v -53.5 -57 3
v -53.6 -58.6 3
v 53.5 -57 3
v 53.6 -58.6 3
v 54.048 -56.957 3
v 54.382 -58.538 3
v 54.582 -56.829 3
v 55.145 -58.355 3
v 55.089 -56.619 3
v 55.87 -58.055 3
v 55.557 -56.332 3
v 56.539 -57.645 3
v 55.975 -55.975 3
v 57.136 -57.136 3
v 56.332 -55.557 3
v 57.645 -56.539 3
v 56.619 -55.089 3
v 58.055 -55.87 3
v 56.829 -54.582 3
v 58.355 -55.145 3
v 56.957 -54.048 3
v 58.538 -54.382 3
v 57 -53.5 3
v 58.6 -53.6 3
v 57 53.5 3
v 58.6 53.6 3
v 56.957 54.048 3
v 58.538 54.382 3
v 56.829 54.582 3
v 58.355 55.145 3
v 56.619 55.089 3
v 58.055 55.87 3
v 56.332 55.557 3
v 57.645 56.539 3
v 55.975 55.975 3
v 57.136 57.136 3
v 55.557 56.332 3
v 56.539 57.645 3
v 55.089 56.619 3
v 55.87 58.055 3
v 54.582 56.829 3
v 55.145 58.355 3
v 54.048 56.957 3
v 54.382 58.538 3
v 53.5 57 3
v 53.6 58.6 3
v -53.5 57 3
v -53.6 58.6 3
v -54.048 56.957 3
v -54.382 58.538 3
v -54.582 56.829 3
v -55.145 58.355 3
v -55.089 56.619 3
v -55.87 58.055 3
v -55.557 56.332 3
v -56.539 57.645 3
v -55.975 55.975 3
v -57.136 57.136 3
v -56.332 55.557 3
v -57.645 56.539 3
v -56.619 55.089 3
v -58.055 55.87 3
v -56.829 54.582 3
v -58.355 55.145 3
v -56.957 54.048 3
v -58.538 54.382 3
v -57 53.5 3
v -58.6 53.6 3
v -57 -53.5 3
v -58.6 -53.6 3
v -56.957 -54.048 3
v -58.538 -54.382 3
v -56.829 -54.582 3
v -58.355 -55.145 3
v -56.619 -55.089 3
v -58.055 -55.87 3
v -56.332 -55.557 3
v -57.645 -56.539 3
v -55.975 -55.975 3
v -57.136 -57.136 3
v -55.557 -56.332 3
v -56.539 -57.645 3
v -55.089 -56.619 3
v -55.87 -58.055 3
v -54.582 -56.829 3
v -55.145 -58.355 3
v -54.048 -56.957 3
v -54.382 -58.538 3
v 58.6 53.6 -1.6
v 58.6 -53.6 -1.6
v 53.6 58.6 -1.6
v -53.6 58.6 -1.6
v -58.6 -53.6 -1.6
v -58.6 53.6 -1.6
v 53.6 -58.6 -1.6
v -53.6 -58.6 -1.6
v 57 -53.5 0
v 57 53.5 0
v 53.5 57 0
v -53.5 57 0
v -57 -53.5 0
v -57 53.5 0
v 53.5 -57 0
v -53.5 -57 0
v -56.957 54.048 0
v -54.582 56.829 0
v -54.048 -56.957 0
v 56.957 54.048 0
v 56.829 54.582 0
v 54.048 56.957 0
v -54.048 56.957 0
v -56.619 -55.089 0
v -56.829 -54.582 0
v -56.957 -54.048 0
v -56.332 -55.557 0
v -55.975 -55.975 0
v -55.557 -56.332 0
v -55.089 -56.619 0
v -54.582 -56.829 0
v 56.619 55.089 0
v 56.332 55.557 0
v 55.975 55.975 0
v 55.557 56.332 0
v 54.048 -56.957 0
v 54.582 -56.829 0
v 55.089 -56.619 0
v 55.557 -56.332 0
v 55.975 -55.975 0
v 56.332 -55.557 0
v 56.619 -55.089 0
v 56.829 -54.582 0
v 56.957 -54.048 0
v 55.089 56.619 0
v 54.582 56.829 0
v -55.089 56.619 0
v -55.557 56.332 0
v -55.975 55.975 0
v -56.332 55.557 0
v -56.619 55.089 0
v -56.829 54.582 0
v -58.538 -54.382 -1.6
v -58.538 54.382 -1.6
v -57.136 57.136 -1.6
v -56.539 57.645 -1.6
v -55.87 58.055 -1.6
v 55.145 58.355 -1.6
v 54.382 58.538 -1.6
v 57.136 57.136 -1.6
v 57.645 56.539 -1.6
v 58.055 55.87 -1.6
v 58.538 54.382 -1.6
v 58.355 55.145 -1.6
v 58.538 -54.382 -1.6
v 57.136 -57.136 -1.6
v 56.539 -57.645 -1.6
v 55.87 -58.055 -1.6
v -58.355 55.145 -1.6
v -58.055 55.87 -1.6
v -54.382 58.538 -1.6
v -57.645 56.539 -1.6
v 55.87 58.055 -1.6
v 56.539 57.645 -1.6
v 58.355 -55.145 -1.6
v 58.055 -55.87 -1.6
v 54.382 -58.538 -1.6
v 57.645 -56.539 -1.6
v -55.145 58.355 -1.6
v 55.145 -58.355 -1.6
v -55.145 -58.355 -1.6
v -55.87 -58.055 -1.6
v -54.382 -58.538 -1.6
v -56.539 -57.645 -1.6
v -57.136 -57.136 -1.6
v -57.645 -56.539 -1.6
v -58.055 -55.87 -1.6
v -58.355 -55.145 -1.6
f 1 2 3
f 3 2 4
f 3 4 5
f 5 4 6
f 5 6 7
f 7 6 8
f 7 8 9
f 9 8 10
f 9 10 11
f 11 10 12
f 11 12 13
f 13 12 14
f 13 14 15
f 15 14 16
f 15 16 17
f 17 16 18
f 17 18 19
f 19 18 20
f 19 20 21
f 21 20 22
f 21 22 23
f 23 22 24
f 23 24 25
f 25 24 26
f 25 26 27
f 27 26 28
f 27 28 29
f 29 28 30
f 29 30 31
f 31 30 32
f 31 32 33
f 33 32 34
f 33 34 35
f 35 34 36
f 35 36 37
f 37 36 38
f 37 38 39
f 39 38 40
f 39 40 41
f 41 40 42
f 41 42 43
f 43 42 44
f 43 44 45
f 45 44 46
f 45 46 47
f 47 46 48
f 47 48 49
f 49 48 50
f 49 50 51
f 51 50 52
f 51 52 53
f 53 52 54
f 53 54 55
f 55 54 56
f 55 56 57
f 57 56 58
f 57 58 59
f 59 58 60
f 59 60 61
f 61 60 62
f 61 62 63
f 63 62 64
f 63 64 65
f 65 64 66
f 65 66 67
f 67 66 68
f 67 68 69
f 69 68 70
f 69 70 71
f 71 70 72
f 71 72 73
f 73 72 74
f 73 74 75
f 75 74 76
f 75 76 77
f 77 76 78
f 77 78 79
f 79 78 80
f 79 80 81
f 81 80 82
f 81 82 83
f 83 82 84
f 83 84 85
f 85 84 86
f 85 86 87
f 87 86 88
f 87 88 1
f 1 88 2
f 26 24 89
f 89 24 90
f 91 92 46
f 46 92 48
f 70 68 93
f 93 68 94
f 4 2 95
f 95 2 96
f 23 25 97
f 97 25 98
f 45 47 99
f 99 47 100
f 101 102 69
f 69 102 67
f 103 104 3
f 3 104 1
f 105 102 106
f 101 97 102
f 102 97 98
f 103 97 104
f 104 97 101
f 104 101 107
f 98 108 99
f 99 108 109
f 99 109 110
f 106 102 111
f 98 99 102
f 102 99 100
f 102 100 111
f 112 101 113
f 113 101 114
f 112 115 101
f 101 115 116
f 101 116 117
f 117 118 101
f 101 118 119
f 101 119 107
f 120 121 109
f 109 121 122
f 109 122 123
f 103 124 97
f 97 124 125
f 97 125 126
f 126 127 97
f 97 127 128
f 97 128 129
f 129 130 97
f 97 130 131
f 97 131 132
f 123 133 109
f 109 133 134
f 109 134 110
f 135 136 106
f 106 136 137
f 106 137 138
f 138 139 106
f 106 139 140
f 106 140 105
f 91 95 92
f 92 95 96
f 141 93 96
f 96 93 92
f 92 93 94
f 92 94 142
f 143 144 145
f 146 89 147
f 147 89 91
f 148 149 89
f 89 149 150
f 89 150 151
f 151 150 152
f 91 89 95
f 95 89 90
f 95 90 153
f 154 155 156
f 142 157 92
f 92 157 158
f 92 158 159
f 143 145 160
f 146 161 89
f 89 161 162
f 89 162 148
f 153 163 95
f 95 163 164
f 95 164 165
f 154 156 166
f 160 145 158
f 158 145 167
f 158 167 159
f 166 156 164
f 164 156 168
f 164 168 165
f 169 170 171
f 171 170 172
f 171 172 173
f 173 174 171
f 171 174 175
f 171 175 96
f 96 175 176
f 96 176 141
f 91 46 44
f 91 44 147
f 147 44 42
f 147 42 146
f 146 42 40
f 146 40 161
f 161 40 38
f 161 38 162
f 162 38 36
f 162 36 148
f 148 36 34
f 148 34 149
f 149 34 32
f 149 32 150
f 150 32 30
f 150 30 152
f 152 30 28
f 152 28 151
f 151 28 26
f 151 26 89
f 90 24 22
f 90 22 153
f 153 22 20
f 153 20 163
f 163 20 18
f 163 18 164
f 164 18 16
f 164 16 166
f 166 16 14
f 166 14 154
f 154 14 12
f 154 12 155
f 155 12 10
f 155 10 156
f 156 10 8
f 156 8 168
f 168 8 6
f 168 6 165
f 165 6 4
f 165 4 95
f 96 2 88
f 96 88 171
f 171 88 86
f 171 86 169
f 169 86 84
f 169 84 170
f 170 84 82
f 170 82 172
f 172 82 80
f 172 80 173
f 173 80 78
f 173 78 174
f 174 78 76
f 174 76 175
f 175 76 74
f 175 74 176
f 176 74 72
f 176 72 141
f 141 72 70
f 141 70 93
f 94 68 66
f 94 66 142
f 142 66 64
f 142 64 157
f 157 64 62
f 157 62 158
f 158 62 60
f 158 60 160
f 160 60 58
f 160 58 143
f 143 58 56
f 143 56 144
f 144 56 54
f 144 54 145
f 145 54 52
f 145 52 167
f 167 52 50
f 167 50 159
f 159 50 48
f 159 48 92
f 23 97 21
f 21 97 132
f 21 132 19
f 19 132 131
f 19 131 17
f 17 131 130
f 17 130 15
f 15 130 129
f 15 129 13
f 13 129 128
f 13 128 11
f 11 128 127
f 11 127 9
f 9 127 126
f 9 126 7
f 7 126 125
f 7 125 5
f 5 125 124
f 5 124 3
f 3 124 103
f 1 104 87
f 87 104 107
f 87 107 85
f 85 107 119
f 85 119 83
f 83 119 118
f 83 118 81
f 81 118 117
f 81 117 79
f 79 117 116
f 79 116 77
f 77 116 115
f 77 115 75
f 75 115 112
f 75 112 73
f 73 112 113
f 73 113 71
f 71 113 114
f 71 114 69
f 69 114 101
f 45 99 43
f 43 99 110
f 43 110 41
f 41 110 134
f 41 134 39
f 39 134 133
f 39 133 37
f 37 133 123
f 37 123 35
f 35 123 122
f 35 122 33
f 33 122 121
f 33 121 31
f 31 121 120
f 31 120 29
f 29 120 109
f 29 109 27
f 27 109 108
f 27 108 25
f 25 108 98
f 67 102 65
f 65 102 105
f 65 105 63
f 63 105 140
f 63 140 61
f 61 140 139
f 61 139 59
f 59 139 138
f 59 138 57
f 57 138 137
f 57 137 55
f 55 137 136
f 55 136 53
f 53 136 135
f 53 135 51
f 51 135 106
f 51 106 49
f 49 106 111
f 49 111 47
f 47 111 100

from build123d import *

# Parameters (mm, degrees)
SURFACE_EXTRUDE1_1_DEPTH = 3
THICKEN1_T1              = 1.6
THICKEN2_START           = -58.6
THICKEN2_OUTLINE_W       = 117.2
THICKEN2_OUTLINE_H       = 1.6
THICKEN2_DEPTH           = 117.2
FILLET2_R                = 5
FILLET3_R                = 3.5


# Read off the part's stored shape, not the designer's step: Thicken2
with BuildPart() as body_1:
    # Surface-Extrude1: a surface, the sketch's curves swept straight by 3 mm
    with BuildLine(Plane.XY, mode=Mode.PRIVATE) as surface_extrude1_1_path:
        Line((-57, 57), (57, 57))
        Line((57, 57), (57, -57))
        Line((57, -57), (-57, -57))
        Line((-57, -57), (-57, 57))
    surface_extrude1_1 = Shell.extrude(surface_extrude1_1_path.wire(), (0 * SURFACE_EXTRUDE1_1_DEPTH, 0 * SURFACE_EXTRUDE1_1_DEPTH, 1 * SURFACE_EXTRUDE1_1_DEPTH))
    add(Solid.thicken(surface_extrude1_1, THICKEN1_T1))

    # Thicken2 outline → Thicken2 (add)
    with BuildSketch(Plane.YZ.offset(THICKEN2_START)):
        with Locations((0, -0.8)):
            Rectangle(THICKEN2_OUTLINE_W, THICKEN2_OUTLINE_H)
    extrude(amount=THICKEN2_DEPTH)

    # Fillet2
    fillet2_edges = [body_1.edges().sort_by_distance(p)[0] for p in [
        (58.6, 58.6, 0.7),
        (-58.6, 58.6, 0.7),
        (58.6, -58.6, 0.7),
        (-58.6, -58.6, 0.7),
    ]]
    fillet(fillet2_edges, radius=FILLET2_R)

    # Fillet3
    fillet3_edges = [body_1.edges().sort_by_distance(p)[0] for p in [
        (57, 57, 1.5),
        (-57, 57, 1.5),
        (57, -57, 1.5),
        (-57, -57, 1.5),
    ]]
    fillet(fillet3_edges, radius=FILLET3_R)


solid = body_1.part
